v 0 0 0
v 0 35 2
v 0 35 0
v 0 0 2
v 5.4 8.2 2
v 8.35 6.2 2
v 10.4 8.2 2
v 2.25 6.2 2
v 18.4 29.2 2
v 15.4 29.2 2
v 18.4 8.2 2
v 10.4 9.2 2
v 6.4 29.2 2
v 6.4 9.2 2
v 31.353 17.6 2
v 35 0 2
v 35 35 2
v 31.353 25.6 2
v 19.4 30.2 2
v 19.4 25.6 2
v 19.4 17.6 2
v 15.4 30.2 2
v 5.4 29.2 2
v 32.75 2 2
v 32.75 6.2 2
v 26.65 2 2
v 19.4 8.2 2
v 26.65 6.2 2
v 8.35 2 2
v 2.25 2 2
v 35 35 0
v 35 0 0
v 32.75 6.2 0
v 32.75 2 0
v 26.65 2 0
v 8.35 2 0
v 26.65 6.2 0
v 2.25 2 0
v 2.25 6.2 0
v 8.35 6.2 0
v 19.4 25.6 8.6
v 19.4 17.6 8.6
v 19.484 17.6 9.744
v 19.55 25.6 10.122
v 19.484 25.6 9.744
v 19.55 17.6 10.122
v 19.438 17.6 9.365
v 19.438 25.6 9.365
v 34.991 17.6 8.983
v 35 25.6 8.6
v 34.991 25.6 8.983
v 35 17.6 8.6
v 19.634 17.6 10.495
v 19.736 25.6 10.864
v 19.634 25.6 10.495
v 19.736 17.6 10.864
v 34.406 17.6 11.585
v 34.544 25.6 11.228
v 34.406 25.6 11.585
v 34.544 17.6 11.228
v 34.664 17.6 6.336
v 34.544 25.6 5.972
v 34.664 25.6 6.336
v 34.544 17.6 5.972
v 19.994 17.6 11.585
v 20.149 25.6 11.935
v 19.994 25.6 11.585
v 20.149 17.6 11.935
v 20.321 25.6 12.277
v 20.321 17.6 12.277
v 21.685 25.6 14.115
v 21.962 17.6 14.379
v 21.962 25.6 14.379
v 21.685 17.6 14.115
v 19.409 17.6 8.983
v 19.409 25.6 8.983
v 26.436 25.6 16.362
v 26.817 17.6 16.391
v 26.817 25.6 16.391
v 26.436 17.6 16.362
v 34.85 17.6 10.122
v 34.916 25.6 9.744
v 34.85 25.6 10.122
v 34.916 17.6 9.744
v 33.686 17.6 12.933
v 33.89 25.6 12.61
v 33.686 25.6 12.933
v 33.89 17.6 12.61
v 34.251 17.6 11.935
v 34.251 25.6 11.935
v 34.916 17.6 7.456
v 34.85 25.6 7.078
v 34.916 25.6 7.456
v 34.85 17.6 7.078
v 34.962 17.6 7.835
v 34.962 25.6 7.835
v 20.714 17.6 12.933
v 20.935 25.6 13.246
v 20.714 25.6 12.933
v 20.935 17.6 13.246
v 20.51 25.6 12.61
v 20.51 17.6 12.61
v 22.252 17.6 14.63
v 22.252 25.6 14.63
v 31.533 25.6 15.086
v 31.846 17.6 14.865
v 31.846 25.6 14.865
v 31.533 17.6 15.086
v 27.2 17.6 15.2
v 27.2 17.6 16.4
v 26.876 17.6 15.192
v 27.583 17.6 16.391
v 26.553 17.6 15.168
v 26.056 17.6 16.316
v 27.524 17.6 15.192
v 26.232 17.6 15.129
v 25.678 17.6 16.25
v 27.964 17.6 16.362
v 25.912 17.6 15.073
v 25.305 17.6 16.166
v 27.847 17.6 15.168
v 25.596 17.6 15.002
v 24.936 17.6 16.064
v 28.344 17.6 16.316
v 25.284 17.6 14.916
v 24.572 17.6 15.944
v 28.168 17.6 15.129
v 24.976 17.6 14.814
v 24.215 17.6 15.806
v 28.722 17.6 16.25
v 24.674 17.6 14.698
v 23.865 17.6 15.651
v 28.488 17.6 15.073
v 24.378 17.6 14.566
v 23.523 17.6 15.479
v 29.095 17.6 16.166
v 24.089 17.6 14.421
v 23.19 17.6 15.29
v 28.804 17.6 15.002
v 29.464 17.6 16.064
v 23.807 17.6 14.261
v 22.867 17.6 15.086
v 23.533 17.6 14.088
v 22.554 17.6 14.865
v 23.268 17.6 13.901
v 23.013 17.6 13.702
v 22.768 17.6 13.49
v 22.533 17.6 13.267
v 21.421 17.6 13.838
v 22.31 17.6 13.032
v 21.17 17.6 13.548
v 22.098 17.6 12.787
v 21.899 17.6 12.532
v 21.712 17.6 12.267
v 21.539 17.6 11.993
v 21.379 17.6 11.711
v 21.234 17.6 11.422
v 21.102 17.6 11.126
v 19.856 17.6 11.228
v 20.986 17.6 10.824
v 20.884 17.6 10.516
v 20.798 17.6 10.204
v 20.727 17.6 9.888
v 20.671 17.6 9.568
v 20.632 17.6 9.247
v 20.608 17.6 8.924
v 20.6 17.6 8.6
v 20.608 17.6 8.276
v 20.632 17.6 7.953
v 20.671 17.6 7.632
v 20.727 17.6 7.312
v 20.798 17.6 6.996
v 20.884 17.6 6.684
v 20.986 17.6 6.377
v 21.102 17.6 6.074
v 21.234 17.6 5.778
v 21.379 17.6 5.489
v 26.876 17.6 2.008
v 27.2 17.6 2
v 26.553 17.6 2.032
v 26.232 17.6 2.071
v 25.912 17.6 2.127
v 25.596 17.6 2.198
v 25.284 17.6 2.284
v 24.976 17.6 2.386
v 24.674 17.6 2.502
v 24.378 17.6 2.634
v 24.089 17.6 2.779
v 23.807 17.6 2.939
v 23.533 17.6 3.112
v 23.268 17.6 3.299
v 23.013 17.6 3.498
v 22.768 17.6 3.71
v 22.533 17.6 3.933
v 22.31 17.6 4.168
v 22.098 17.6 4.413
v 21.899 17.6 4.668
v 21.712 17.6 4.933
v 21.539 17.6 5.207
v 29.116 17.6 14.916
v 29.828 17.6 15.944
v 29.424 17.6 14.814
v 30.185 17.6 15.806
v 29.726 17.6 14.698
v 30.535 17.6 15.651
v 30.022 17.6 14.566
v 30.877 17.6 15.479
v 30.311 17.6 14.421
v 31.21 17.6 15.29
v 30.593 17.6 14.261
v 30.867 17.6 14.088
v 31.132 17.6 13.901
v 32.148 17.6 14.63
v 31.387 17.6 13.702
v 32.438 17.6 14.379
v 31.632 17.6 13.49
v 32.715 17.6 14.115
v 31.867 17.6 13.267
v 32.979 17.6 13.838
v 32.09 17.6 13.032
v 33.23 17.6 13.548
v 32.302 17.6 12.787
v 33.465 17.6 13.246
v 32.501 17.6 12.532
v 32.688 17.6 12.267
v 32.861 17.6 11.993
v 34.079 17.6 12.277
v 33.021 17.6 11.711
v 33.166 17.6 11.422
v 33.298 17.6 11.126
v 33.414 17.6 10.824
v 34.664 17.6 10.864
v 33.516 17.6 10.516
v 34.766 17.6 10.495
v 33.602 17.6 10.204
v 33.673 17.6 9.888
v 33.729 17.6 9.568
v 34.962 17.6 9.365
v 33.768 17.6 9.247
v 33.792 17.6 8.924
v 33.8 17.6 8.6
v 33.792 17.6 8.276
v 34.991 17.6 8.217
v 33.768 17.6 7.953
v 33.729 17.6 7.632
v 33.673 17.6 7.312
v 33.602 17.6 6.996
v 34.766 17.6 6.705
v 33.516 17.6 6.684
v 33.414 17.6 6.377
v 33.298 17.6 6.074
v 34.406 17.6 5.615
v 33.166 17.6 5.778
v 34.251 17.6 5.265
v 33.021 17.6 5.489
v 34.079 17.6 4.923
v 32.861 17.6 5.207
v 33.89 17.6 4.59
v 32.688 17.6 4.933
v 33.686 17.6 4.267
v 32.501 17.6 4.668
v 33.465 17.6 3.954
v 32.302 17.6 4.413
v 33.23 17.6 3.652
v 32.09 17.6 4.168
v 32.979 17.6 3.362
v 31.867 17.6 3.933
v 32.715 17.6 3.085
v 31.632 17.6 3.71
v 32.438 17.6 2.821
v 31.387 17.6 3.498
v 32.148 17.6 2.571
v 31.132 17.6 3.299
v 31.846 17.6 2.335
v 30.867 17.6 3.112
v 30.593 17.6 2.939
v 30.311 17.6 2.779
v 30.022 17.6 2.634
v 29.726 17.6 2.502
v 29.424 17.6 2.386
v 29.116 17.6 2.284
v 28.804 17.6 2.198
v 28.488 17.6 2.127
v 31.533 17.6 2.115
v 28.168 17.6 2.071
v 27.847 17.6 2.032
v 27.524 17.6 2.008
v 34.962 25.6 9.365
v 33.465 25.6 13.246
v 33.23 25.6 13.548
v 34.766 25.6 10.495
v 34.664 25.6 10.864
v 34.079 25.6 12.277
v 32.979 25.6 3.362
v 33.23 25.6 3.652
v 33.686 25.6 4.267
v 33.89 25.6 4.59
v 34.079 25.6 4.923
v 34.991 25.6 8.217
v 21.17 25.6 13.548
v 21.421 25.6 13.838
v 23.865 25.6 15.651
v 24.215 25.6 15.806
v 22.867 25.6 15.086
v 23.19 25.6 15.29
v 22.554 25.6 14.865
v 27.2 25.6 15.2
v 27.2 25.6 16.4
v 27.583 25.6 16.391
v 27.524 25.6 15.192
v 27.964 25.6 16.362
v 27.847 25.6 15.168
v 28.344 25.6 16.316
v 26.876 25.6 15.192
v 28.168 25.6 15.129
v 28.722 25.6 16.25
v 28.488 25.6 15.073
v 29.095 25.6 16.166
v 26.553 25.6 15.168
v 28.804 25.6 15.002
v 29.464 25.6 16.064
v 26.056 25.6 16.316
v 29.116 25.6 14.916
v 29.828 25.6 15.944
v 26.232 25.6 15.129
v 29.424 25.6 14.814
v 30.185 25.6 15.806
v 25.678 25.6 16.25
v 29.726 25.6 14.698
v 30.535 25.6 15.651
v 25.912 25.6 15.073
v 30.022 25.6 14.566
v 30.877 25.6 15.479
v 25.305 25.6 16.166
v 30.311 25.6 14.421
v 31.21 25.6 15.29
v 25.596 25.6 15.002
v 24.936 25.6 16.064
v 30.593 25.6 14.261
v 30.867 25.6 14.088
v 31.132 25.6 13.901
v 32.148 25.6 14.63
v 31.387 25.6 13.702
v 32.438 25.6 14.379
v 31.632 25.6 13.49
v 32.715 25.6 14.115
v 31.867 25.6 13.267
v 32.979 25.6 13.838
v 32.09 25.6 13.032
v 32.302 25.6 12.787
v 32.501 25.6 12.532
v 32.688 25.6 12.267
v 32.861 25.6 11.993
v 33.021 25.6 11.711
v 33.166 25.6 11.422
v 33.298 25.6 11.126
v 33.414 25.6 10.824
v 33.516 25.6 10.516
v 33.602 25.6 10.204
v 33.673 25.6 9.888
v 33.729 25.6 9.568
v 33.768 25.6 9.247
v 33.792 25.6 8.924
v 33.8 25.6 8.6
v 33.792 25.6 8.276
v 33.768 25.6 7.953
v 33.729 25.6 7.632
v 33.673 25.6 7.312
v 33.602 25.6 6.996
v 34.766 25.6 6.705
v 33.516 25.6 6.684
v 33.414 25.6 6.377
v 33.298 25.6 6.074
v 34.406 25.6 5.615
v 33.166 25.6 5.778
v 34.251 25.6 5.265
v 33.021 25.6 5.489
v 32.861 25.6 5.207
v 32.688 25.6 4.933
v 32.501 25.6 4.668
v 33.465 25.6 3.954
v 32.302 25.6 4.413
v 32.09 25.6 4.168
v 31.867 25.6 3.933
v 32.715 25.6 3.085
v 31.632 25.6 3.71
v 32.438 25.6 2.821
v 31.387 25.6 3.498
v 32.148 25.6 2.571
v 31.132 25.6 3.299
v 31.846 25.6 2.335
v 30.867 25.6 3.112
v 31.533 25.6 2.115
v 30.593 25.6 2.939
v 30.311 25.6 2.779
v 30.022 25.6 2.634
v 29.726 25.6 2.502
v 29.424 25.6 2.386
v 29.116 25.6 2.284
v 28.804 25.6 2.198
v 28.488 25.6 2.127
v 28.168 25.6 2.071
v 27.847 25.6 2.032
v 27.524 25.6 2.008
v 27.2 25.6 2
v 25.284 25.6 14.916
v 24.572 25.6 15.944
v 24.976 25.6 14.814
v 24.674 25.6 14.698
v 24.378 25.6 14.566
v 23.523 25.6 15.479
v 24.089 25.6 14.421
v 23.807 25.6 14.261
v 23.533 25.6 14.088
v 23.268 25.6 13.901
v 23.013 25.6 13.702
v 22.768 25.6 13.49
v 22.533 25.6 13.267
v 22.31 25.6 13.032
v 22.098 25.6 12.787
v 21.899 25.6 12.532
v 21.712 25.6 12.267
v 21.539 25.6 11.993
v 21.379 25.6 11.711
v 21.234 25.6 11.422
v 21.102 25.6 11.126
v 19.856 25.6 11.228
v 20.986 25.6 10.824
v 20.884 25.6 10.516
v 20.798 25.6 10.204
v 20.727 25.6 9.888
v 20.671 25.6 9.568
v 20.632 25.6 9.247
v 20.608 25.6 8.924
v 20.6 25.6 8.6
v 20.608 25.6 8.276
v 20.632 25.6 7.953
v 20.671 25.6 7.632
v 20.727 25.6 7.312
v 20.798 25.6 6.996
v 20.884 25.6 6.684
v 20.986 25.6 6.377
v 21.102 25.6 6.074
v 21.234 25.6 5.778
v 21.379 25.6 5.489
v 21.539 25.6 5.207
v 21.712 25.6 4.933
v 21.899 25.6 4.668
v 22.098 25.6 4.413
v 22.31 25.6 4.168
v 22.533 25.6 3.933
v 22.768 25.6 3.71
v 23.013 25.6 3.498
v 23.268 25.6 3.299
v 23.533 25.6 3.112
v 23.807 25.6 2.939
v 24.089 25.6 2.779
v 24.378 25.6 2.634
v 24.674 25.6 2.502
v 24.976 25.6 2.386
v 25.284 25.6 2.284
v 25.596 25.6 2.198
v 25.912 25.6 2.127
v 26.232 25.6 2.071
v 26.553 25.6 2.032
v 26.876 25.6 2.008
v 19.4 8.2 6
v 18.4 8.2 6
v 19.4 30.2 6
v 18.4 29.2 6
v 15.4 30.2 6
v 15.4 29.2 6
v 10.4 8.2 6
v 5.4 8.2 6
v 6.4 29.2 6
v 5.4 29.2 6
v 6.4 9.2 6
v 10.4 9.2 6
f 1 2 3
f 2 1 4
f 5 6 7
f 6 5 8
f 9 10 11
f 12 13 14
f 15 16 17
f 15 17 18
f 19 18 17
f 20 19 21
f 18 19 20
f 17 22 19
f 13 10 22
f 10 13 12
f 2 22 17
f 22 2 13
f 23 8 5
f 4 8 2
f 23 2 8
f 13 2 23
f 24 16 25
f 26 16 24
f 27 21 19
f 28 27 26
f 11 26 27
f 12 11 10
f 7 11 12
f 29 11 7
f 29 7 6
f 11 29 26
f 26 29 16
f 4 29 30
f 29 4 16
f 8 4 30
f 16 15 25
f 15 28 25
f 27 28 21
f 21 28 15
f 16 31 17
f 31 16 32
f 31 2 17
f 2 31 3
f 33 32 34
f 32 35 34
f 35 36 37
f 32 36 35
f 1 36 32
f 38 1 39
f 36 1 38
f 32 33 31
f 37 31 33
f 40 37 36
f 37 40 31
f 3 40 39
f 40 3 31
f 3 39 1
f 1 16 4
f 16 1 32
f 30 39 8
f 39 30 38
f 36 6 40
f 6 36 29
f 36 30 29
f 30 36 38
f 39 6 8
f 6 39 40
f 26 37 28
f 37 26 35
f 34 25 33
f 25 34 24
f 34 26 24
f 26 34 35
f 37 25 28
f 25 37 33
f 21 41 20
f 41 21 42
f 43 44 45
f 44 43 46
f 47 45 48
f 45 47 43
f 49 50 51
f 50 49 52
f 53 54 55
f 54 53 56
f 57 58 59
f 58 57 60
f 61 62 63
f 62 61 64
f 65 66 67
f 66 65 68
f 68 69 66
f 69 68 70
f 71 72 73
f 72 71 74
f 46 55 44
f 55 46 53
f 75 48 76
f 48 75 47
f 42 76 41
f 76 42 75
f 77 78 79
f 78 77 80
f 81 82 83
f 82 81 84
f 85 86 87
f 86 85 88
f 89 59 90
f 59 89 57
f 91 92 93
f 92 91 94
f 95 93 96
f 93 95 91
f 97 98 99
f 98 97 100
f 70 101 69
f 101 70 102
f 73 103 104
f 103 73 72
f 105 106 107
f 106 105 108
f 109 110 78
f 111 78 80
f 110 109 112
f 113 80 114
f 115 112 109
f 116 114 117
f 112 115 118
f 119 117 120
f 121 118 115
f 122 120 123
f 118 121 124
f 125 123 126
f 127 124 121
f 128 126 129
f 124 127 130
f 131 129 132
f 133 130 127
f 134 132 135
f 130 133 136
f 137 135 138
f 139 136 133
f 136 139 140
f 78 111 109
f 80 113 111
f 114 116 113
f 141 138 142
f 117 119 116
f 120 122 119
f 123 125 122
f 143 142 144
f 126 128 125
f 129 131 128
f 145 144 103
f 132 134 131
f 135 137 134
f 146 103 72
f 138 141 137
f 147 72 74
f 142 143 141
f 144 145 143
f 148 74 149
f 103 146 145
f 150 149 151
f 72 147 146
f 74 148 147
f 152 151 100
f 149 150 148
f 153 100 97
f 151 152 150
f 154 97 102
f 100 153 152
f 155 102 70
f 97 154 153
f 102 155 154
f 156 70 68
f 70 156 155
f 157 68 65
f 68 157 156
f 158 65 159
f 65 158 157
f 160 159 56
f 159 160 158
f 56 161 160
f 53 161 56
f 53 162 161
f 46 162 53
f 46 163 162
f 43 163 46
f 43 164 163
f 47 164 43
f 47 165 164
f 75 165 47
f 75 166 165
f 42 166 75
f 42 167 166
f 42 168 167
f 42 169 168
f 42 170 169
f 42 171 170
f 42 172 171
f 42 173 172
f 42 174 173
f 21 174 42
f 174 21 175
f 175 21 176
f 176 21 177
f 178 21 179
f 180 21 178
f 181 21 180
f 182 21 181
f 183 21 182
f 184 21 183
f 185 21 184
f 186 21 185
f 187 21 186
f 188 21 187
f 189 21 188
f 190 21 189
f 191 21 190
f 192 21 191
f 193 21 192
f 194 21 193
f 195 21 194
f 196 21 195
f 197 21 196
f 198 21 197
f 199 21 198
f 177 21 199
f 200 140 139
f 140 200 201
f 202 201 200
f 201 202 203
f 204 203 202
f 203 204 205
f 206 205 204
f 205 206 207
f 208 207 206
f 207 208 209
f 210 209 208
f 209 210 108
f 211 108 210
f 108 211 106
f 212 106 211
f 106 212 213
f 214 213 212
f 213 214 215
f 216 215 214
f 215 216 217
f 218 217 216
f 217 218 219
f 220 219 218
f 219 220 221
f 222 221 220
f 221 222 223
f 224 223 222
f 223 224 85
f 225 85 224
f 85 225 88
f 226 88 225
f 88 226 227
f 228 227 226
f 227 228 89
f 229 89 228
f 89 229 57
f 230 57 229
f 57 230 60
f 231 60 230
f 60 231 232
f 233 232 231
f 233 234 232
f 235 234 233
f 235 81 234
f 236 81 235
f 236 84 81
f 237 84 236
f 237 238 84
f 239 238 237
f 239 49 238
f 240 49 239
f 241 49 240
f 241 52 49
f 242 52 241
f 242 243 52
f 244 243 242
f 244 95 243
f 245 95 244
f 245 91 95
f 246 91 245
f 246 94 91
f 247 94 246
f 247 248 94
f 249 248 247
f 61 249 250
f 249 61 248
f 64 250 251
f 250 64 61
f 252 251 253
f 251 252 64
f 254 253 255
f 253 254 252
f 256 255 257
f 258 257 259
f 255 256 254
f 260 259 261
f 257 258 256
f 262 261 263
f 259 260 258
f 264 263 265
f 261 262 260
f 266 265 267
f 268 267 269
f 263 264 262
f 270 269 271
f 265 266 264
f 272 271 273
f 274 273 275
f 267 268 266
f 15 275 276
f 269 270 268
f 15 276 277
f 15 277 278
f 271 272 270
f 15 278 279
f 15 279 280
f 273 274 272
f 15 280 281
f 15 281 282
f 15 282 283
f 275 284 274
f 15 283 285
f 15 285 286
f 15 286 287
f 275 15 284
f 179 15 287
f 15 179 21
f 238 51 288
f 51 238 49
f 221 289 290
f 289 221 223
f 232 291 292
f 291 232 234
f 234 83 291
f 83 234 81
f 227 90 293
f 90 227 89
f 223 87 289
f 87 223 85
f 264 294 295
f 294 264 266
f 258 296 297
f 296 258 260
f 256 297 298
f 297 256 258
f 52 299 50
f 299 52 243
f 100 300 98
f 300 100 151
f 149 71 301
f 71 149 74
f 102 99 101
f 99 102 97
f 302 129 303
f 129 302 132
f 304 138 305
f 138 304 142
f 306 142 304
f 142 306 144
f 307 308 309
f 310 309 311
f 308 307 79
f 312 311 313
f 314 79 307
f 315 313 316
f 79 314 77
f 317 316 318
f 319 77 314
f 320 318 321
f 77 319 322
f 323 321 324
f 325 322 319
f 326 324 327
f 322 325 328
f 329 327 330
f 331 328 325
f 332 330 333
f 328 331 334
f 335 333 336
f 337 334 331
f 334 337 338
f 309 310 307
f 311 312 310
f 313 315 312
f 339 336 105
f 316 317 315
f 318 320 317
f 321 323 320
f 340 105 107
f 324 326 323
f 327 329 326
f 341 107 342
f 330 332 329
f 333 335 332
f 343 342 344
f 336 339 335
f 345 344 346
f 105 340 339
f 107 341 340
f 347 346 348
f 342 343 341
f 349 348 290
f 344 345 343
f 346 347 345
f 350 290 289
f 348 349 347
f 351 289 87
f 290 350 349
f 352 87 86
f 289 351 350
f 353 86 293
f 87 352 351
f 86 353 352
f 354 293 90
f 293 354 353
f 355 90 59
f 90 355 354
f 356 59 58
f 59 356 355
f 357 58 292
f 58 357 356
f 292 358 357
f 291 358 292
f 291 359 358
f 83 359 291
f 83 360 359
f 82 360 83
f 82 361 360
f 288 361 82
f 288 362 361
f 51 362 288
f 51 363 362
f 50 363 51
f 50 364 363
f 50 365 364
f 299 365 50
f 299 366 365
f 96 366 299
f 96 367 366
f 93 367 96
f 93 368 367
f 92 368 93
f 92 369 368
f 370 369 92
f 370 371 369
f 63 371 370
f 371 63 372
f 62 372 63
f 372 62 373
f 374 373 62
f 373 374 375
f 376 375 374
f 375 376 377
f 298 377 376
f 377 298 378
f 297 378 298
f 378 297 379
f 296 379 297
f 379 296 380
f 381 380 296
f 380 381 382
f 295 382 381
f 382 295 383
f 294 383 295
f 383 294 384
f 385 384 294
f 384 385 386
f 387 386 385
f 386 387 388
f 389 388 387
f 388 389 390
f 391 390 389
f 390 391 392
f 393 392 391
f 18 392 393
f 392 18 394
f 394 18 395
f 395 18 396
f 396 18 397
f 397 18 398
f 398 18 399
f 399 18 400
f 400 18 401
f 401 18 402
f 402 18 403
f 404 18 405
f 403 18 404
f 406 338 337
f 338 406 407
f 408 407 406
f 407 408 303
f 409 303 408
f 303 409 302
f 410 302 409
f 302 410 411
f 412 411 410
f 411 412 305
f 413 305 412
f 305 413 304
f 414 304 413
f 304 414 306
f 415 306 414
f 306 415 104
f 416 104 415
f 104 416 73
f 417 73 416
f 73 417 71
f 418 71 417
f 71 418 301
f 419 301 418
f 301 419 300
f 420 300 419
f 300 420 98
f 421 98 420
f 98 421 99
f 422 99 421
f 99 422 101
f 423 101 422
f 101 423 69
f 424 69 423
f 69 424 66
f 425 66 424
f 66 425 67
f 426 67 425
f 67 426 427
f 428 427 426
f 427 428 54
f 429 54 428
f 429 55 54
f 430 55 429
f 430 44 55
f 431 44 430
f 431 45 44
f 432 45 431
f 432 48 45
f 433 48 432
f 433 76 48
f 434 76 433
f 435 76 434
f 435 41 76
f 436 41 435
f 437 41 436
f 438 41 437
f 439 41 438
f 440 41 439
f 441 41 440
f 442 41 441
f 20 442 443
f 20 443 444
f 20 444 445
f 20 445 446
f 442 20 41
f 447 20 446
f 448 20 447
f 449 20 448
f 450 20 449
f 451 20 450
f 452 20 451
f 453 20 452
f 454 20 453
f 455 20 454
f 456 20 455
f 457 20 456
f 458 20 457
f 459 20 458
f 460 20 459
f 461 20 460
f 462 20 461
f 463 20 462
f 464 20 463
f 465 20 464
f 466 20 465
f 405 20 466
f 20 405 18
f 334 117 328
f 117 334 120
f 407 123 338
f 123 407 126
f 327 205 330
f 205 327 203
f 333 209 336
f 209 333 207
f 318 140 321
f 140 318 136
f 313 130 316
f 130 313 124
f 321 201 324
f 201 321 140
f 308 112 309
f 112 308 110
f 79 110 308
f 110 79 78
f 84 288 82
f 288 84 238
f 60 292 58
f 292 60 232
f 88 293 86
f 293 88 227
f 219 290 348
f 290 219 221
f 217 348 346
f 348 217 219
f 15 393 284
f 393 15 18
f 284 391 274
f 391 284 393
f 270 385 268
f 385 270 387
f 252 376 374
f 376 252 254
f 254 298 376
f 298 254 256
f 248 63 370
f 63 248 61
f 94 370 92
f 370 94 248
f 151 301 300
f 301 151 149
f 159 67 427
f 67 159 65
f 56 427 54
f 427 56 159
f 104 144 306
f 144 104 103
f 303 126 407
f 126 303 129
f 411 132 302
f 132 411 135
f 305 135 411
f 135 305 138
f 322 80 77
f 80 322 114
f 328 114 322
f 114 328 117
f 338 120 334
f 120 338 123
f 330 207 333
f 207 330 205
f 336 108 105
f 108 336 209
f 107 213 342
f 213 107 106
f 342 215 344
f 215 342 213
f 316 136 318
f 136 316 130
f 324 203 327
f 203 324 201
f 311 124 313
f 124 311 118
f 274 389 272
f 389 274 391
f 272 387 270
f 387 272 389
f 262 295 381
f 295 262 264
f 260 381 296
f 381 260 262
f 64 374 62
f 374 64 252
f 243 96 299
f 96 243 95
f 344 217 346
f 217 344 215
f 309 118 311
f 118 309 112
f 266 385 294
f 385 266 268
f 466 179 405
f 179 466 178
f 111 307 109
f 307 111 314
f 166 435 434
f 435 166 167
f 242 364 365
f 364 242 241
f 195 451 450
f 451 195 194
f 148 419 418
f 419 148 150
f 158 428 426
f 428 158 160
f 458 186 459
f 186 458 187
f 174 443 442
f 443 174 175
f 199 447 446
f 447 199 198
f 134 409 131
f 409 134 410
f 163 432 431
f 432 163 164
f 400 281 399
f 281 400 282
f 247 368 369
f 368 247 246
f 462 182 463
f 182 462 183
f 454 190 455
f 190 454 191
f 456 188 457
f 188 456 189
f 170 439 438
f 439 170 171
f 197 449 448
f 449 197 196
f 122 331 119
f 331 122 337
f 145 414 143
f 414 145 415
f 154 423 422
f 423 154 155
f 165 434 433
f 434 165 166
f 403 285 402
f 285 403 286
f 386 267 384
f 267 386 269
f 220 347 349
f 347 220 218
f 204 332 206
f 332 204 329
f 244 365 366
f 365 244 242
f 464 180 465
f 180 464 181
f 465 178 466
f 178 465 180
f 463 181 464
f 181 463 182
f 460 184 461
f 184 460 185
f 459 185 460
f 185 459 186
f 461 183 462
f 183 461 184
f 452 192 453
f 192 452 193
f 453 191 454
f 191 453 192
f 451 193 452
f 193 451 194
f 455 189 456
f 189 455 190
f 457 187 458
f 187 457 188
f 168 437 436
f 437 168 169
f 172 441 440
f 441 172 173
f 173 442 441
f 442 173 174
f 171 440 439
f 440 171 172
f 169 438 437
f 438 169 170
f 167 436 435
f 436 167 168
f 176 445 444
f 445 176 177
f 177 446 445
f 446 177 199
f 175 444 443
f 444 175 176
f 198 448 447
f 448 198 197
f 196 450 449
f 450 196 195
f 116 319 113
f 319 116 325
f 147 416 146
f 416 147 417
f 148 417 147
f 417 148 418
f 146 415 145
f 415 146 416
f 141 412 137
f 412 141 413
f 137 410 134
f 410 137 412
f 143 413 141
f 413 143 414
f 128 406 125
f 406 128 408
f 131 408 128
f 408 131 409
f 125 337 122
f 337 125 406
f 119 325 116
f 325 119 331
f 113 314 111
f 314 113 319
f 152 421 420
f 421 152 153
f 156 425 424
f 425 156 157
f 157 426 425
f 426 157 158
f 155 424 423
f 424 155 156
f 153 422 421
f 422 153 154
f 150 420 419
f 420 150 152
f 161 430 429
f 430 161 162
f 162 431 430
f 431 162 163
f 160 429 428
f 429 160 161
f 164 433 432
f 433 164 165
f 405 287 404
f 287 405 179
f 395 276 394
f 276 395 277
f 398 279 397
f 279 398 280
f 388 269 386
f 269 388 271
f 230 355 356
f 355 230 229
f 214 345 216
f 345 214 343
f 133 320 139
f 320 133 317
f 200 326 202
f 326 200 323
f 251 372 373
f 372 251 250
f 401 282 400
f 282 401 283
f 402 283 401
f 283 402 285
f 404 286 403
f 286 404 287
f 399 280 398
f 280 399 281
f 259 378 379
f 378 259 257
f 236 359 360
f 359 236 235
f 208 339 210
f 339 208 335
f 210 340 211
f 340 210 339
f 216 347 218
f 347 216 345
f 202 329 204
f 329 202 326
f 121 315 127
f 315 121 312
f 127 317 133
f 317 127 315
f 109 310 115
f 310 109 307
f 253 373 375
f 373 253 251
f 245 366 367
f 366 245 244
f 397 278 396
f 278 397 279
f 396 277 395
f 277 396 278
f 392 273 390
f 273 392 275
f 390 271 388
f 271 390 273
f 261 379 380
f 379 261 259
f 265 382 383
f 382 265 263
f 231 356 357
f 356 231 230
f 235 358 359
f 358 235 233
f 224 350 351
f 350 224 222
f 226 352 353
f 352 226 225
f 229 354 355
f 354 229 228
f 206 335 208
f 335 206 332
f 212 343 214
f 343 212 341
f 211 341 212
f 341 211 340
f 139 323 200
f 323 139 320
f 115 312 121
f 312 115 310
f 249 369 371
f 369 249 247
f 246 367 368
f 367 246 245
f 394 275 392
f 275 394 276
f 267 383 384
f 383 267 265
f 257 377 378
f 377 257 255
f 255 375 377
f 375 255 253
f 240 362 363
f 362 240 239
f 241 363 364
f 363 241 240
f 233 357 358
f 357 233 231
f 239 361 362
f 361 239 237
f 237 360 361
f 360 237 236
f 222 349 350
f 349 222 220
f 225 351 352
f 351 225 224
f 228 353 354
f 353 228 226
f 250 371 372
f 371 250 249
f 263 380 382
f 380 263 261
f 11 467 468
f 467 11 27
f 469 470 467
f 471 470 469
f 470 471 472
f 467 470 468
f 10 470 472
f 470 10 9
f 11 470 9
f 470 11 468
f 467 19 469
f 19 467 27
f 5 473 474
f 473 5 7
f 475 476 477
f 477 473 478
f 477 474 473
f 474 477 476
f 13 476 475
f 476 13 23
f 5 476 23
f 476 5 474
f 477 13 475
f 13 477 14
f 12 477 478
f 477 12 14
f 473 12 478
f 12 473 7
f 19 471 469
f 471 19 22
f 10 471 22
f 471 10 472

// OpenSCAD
slack = 0.1;

capDiameter = 13.2;
capRingWidth = 8;
capRingThickness = 2.4;

standoffWidth = 6.1;
standoffThickness = 4.2;
standoffTotalWidth = 30.5;

plateWidth = 35;
plateDepth = 35;
plateThickness = 2;
plateStandoffOffset = 2;

rxLength = 21;
rxWidth = 12;
rxBevelHeight = 4;
rxBevelWidth = 1;
rxRetentionBevelWidth = 4;
rxPlateOffset = 5.1;

module capRing() {
    rotate([0, 90, 0]) {
        difference() {
            // cap ring with mount plate
            hull(){
                translate([0, -2 * slack, 0]) cube([(capDiameter + capRingThickness)/2, capRingWidth, capRingWidth]);
                cylinder(d = capDiameter + capRingThickness, h = capRingWidth, $fn = 128);
            }
            // cap cutout
            translate([0, 0, -slack]) cylinder(d = capDiameter, h = capRingWidth + 2 * slack, $fn = 128);
        }
    }
}

module receiverBevels() {
    cube([rxLength, rxBevelWidth, rxBevelHeight]);
    translate([0, rxWidth + rxBevelWidth, 0]) cube([rxLength, rxBevelWidth, rxBevelHeight]);
    translate([0, rxWidth + rxBevelWidth - rxRetentionBevelWidth, 0]) cube([rxBevelWidth, rxRetentionBevelWidth, rxBevelHeight]);
    translate([rxLength, 0, 0]) cube([rxBevelWidth, rxRetentionBevelWidth, rxBevelHeight]);
}

module plate() {
    union() {
        difference() {
            // base plate
            cube([plateWidth, plateDepth, plateThickness]);
            
            // spacer cutouts
            standoffOffset = (plateWidth - standoffTotalWidth) / 2;
            translate([standoffOffset, plateStandoffOffset, -slack]) cube([standoffWidth, standoffThickness, plateThickness + 2 * slack]);
            translate([plateWidth - standoffOffset - standoffWidth, plateStandoffOffset, -slack]) cube([standoffWidth, standoffThickness, plateThickness + 2 * slack]);
        }
        
    }
}


totalBevelWidth = rxWidth + 2 * rxBevelWidth;
totalRingWidth = capDiameter + capRingThickness;
plateOffset = standoffThickness + 2 * plateStandoffOffset;

plate();
translate([(plateWidth - totalBevelWidth)/2 + totalBevelWidth - rxPlateOffset, plateOffset, plateThickness]) rotate([0, 0, 90]) receiverBevels();
translate([plateWidth - totalRingWidth/2, (plateDepth - capRingWidth + plateOffset)/2, totalRingWidth/2 + plateThickness - capRingThickness/2]) rotate([0, 0, 90]) capRing();
